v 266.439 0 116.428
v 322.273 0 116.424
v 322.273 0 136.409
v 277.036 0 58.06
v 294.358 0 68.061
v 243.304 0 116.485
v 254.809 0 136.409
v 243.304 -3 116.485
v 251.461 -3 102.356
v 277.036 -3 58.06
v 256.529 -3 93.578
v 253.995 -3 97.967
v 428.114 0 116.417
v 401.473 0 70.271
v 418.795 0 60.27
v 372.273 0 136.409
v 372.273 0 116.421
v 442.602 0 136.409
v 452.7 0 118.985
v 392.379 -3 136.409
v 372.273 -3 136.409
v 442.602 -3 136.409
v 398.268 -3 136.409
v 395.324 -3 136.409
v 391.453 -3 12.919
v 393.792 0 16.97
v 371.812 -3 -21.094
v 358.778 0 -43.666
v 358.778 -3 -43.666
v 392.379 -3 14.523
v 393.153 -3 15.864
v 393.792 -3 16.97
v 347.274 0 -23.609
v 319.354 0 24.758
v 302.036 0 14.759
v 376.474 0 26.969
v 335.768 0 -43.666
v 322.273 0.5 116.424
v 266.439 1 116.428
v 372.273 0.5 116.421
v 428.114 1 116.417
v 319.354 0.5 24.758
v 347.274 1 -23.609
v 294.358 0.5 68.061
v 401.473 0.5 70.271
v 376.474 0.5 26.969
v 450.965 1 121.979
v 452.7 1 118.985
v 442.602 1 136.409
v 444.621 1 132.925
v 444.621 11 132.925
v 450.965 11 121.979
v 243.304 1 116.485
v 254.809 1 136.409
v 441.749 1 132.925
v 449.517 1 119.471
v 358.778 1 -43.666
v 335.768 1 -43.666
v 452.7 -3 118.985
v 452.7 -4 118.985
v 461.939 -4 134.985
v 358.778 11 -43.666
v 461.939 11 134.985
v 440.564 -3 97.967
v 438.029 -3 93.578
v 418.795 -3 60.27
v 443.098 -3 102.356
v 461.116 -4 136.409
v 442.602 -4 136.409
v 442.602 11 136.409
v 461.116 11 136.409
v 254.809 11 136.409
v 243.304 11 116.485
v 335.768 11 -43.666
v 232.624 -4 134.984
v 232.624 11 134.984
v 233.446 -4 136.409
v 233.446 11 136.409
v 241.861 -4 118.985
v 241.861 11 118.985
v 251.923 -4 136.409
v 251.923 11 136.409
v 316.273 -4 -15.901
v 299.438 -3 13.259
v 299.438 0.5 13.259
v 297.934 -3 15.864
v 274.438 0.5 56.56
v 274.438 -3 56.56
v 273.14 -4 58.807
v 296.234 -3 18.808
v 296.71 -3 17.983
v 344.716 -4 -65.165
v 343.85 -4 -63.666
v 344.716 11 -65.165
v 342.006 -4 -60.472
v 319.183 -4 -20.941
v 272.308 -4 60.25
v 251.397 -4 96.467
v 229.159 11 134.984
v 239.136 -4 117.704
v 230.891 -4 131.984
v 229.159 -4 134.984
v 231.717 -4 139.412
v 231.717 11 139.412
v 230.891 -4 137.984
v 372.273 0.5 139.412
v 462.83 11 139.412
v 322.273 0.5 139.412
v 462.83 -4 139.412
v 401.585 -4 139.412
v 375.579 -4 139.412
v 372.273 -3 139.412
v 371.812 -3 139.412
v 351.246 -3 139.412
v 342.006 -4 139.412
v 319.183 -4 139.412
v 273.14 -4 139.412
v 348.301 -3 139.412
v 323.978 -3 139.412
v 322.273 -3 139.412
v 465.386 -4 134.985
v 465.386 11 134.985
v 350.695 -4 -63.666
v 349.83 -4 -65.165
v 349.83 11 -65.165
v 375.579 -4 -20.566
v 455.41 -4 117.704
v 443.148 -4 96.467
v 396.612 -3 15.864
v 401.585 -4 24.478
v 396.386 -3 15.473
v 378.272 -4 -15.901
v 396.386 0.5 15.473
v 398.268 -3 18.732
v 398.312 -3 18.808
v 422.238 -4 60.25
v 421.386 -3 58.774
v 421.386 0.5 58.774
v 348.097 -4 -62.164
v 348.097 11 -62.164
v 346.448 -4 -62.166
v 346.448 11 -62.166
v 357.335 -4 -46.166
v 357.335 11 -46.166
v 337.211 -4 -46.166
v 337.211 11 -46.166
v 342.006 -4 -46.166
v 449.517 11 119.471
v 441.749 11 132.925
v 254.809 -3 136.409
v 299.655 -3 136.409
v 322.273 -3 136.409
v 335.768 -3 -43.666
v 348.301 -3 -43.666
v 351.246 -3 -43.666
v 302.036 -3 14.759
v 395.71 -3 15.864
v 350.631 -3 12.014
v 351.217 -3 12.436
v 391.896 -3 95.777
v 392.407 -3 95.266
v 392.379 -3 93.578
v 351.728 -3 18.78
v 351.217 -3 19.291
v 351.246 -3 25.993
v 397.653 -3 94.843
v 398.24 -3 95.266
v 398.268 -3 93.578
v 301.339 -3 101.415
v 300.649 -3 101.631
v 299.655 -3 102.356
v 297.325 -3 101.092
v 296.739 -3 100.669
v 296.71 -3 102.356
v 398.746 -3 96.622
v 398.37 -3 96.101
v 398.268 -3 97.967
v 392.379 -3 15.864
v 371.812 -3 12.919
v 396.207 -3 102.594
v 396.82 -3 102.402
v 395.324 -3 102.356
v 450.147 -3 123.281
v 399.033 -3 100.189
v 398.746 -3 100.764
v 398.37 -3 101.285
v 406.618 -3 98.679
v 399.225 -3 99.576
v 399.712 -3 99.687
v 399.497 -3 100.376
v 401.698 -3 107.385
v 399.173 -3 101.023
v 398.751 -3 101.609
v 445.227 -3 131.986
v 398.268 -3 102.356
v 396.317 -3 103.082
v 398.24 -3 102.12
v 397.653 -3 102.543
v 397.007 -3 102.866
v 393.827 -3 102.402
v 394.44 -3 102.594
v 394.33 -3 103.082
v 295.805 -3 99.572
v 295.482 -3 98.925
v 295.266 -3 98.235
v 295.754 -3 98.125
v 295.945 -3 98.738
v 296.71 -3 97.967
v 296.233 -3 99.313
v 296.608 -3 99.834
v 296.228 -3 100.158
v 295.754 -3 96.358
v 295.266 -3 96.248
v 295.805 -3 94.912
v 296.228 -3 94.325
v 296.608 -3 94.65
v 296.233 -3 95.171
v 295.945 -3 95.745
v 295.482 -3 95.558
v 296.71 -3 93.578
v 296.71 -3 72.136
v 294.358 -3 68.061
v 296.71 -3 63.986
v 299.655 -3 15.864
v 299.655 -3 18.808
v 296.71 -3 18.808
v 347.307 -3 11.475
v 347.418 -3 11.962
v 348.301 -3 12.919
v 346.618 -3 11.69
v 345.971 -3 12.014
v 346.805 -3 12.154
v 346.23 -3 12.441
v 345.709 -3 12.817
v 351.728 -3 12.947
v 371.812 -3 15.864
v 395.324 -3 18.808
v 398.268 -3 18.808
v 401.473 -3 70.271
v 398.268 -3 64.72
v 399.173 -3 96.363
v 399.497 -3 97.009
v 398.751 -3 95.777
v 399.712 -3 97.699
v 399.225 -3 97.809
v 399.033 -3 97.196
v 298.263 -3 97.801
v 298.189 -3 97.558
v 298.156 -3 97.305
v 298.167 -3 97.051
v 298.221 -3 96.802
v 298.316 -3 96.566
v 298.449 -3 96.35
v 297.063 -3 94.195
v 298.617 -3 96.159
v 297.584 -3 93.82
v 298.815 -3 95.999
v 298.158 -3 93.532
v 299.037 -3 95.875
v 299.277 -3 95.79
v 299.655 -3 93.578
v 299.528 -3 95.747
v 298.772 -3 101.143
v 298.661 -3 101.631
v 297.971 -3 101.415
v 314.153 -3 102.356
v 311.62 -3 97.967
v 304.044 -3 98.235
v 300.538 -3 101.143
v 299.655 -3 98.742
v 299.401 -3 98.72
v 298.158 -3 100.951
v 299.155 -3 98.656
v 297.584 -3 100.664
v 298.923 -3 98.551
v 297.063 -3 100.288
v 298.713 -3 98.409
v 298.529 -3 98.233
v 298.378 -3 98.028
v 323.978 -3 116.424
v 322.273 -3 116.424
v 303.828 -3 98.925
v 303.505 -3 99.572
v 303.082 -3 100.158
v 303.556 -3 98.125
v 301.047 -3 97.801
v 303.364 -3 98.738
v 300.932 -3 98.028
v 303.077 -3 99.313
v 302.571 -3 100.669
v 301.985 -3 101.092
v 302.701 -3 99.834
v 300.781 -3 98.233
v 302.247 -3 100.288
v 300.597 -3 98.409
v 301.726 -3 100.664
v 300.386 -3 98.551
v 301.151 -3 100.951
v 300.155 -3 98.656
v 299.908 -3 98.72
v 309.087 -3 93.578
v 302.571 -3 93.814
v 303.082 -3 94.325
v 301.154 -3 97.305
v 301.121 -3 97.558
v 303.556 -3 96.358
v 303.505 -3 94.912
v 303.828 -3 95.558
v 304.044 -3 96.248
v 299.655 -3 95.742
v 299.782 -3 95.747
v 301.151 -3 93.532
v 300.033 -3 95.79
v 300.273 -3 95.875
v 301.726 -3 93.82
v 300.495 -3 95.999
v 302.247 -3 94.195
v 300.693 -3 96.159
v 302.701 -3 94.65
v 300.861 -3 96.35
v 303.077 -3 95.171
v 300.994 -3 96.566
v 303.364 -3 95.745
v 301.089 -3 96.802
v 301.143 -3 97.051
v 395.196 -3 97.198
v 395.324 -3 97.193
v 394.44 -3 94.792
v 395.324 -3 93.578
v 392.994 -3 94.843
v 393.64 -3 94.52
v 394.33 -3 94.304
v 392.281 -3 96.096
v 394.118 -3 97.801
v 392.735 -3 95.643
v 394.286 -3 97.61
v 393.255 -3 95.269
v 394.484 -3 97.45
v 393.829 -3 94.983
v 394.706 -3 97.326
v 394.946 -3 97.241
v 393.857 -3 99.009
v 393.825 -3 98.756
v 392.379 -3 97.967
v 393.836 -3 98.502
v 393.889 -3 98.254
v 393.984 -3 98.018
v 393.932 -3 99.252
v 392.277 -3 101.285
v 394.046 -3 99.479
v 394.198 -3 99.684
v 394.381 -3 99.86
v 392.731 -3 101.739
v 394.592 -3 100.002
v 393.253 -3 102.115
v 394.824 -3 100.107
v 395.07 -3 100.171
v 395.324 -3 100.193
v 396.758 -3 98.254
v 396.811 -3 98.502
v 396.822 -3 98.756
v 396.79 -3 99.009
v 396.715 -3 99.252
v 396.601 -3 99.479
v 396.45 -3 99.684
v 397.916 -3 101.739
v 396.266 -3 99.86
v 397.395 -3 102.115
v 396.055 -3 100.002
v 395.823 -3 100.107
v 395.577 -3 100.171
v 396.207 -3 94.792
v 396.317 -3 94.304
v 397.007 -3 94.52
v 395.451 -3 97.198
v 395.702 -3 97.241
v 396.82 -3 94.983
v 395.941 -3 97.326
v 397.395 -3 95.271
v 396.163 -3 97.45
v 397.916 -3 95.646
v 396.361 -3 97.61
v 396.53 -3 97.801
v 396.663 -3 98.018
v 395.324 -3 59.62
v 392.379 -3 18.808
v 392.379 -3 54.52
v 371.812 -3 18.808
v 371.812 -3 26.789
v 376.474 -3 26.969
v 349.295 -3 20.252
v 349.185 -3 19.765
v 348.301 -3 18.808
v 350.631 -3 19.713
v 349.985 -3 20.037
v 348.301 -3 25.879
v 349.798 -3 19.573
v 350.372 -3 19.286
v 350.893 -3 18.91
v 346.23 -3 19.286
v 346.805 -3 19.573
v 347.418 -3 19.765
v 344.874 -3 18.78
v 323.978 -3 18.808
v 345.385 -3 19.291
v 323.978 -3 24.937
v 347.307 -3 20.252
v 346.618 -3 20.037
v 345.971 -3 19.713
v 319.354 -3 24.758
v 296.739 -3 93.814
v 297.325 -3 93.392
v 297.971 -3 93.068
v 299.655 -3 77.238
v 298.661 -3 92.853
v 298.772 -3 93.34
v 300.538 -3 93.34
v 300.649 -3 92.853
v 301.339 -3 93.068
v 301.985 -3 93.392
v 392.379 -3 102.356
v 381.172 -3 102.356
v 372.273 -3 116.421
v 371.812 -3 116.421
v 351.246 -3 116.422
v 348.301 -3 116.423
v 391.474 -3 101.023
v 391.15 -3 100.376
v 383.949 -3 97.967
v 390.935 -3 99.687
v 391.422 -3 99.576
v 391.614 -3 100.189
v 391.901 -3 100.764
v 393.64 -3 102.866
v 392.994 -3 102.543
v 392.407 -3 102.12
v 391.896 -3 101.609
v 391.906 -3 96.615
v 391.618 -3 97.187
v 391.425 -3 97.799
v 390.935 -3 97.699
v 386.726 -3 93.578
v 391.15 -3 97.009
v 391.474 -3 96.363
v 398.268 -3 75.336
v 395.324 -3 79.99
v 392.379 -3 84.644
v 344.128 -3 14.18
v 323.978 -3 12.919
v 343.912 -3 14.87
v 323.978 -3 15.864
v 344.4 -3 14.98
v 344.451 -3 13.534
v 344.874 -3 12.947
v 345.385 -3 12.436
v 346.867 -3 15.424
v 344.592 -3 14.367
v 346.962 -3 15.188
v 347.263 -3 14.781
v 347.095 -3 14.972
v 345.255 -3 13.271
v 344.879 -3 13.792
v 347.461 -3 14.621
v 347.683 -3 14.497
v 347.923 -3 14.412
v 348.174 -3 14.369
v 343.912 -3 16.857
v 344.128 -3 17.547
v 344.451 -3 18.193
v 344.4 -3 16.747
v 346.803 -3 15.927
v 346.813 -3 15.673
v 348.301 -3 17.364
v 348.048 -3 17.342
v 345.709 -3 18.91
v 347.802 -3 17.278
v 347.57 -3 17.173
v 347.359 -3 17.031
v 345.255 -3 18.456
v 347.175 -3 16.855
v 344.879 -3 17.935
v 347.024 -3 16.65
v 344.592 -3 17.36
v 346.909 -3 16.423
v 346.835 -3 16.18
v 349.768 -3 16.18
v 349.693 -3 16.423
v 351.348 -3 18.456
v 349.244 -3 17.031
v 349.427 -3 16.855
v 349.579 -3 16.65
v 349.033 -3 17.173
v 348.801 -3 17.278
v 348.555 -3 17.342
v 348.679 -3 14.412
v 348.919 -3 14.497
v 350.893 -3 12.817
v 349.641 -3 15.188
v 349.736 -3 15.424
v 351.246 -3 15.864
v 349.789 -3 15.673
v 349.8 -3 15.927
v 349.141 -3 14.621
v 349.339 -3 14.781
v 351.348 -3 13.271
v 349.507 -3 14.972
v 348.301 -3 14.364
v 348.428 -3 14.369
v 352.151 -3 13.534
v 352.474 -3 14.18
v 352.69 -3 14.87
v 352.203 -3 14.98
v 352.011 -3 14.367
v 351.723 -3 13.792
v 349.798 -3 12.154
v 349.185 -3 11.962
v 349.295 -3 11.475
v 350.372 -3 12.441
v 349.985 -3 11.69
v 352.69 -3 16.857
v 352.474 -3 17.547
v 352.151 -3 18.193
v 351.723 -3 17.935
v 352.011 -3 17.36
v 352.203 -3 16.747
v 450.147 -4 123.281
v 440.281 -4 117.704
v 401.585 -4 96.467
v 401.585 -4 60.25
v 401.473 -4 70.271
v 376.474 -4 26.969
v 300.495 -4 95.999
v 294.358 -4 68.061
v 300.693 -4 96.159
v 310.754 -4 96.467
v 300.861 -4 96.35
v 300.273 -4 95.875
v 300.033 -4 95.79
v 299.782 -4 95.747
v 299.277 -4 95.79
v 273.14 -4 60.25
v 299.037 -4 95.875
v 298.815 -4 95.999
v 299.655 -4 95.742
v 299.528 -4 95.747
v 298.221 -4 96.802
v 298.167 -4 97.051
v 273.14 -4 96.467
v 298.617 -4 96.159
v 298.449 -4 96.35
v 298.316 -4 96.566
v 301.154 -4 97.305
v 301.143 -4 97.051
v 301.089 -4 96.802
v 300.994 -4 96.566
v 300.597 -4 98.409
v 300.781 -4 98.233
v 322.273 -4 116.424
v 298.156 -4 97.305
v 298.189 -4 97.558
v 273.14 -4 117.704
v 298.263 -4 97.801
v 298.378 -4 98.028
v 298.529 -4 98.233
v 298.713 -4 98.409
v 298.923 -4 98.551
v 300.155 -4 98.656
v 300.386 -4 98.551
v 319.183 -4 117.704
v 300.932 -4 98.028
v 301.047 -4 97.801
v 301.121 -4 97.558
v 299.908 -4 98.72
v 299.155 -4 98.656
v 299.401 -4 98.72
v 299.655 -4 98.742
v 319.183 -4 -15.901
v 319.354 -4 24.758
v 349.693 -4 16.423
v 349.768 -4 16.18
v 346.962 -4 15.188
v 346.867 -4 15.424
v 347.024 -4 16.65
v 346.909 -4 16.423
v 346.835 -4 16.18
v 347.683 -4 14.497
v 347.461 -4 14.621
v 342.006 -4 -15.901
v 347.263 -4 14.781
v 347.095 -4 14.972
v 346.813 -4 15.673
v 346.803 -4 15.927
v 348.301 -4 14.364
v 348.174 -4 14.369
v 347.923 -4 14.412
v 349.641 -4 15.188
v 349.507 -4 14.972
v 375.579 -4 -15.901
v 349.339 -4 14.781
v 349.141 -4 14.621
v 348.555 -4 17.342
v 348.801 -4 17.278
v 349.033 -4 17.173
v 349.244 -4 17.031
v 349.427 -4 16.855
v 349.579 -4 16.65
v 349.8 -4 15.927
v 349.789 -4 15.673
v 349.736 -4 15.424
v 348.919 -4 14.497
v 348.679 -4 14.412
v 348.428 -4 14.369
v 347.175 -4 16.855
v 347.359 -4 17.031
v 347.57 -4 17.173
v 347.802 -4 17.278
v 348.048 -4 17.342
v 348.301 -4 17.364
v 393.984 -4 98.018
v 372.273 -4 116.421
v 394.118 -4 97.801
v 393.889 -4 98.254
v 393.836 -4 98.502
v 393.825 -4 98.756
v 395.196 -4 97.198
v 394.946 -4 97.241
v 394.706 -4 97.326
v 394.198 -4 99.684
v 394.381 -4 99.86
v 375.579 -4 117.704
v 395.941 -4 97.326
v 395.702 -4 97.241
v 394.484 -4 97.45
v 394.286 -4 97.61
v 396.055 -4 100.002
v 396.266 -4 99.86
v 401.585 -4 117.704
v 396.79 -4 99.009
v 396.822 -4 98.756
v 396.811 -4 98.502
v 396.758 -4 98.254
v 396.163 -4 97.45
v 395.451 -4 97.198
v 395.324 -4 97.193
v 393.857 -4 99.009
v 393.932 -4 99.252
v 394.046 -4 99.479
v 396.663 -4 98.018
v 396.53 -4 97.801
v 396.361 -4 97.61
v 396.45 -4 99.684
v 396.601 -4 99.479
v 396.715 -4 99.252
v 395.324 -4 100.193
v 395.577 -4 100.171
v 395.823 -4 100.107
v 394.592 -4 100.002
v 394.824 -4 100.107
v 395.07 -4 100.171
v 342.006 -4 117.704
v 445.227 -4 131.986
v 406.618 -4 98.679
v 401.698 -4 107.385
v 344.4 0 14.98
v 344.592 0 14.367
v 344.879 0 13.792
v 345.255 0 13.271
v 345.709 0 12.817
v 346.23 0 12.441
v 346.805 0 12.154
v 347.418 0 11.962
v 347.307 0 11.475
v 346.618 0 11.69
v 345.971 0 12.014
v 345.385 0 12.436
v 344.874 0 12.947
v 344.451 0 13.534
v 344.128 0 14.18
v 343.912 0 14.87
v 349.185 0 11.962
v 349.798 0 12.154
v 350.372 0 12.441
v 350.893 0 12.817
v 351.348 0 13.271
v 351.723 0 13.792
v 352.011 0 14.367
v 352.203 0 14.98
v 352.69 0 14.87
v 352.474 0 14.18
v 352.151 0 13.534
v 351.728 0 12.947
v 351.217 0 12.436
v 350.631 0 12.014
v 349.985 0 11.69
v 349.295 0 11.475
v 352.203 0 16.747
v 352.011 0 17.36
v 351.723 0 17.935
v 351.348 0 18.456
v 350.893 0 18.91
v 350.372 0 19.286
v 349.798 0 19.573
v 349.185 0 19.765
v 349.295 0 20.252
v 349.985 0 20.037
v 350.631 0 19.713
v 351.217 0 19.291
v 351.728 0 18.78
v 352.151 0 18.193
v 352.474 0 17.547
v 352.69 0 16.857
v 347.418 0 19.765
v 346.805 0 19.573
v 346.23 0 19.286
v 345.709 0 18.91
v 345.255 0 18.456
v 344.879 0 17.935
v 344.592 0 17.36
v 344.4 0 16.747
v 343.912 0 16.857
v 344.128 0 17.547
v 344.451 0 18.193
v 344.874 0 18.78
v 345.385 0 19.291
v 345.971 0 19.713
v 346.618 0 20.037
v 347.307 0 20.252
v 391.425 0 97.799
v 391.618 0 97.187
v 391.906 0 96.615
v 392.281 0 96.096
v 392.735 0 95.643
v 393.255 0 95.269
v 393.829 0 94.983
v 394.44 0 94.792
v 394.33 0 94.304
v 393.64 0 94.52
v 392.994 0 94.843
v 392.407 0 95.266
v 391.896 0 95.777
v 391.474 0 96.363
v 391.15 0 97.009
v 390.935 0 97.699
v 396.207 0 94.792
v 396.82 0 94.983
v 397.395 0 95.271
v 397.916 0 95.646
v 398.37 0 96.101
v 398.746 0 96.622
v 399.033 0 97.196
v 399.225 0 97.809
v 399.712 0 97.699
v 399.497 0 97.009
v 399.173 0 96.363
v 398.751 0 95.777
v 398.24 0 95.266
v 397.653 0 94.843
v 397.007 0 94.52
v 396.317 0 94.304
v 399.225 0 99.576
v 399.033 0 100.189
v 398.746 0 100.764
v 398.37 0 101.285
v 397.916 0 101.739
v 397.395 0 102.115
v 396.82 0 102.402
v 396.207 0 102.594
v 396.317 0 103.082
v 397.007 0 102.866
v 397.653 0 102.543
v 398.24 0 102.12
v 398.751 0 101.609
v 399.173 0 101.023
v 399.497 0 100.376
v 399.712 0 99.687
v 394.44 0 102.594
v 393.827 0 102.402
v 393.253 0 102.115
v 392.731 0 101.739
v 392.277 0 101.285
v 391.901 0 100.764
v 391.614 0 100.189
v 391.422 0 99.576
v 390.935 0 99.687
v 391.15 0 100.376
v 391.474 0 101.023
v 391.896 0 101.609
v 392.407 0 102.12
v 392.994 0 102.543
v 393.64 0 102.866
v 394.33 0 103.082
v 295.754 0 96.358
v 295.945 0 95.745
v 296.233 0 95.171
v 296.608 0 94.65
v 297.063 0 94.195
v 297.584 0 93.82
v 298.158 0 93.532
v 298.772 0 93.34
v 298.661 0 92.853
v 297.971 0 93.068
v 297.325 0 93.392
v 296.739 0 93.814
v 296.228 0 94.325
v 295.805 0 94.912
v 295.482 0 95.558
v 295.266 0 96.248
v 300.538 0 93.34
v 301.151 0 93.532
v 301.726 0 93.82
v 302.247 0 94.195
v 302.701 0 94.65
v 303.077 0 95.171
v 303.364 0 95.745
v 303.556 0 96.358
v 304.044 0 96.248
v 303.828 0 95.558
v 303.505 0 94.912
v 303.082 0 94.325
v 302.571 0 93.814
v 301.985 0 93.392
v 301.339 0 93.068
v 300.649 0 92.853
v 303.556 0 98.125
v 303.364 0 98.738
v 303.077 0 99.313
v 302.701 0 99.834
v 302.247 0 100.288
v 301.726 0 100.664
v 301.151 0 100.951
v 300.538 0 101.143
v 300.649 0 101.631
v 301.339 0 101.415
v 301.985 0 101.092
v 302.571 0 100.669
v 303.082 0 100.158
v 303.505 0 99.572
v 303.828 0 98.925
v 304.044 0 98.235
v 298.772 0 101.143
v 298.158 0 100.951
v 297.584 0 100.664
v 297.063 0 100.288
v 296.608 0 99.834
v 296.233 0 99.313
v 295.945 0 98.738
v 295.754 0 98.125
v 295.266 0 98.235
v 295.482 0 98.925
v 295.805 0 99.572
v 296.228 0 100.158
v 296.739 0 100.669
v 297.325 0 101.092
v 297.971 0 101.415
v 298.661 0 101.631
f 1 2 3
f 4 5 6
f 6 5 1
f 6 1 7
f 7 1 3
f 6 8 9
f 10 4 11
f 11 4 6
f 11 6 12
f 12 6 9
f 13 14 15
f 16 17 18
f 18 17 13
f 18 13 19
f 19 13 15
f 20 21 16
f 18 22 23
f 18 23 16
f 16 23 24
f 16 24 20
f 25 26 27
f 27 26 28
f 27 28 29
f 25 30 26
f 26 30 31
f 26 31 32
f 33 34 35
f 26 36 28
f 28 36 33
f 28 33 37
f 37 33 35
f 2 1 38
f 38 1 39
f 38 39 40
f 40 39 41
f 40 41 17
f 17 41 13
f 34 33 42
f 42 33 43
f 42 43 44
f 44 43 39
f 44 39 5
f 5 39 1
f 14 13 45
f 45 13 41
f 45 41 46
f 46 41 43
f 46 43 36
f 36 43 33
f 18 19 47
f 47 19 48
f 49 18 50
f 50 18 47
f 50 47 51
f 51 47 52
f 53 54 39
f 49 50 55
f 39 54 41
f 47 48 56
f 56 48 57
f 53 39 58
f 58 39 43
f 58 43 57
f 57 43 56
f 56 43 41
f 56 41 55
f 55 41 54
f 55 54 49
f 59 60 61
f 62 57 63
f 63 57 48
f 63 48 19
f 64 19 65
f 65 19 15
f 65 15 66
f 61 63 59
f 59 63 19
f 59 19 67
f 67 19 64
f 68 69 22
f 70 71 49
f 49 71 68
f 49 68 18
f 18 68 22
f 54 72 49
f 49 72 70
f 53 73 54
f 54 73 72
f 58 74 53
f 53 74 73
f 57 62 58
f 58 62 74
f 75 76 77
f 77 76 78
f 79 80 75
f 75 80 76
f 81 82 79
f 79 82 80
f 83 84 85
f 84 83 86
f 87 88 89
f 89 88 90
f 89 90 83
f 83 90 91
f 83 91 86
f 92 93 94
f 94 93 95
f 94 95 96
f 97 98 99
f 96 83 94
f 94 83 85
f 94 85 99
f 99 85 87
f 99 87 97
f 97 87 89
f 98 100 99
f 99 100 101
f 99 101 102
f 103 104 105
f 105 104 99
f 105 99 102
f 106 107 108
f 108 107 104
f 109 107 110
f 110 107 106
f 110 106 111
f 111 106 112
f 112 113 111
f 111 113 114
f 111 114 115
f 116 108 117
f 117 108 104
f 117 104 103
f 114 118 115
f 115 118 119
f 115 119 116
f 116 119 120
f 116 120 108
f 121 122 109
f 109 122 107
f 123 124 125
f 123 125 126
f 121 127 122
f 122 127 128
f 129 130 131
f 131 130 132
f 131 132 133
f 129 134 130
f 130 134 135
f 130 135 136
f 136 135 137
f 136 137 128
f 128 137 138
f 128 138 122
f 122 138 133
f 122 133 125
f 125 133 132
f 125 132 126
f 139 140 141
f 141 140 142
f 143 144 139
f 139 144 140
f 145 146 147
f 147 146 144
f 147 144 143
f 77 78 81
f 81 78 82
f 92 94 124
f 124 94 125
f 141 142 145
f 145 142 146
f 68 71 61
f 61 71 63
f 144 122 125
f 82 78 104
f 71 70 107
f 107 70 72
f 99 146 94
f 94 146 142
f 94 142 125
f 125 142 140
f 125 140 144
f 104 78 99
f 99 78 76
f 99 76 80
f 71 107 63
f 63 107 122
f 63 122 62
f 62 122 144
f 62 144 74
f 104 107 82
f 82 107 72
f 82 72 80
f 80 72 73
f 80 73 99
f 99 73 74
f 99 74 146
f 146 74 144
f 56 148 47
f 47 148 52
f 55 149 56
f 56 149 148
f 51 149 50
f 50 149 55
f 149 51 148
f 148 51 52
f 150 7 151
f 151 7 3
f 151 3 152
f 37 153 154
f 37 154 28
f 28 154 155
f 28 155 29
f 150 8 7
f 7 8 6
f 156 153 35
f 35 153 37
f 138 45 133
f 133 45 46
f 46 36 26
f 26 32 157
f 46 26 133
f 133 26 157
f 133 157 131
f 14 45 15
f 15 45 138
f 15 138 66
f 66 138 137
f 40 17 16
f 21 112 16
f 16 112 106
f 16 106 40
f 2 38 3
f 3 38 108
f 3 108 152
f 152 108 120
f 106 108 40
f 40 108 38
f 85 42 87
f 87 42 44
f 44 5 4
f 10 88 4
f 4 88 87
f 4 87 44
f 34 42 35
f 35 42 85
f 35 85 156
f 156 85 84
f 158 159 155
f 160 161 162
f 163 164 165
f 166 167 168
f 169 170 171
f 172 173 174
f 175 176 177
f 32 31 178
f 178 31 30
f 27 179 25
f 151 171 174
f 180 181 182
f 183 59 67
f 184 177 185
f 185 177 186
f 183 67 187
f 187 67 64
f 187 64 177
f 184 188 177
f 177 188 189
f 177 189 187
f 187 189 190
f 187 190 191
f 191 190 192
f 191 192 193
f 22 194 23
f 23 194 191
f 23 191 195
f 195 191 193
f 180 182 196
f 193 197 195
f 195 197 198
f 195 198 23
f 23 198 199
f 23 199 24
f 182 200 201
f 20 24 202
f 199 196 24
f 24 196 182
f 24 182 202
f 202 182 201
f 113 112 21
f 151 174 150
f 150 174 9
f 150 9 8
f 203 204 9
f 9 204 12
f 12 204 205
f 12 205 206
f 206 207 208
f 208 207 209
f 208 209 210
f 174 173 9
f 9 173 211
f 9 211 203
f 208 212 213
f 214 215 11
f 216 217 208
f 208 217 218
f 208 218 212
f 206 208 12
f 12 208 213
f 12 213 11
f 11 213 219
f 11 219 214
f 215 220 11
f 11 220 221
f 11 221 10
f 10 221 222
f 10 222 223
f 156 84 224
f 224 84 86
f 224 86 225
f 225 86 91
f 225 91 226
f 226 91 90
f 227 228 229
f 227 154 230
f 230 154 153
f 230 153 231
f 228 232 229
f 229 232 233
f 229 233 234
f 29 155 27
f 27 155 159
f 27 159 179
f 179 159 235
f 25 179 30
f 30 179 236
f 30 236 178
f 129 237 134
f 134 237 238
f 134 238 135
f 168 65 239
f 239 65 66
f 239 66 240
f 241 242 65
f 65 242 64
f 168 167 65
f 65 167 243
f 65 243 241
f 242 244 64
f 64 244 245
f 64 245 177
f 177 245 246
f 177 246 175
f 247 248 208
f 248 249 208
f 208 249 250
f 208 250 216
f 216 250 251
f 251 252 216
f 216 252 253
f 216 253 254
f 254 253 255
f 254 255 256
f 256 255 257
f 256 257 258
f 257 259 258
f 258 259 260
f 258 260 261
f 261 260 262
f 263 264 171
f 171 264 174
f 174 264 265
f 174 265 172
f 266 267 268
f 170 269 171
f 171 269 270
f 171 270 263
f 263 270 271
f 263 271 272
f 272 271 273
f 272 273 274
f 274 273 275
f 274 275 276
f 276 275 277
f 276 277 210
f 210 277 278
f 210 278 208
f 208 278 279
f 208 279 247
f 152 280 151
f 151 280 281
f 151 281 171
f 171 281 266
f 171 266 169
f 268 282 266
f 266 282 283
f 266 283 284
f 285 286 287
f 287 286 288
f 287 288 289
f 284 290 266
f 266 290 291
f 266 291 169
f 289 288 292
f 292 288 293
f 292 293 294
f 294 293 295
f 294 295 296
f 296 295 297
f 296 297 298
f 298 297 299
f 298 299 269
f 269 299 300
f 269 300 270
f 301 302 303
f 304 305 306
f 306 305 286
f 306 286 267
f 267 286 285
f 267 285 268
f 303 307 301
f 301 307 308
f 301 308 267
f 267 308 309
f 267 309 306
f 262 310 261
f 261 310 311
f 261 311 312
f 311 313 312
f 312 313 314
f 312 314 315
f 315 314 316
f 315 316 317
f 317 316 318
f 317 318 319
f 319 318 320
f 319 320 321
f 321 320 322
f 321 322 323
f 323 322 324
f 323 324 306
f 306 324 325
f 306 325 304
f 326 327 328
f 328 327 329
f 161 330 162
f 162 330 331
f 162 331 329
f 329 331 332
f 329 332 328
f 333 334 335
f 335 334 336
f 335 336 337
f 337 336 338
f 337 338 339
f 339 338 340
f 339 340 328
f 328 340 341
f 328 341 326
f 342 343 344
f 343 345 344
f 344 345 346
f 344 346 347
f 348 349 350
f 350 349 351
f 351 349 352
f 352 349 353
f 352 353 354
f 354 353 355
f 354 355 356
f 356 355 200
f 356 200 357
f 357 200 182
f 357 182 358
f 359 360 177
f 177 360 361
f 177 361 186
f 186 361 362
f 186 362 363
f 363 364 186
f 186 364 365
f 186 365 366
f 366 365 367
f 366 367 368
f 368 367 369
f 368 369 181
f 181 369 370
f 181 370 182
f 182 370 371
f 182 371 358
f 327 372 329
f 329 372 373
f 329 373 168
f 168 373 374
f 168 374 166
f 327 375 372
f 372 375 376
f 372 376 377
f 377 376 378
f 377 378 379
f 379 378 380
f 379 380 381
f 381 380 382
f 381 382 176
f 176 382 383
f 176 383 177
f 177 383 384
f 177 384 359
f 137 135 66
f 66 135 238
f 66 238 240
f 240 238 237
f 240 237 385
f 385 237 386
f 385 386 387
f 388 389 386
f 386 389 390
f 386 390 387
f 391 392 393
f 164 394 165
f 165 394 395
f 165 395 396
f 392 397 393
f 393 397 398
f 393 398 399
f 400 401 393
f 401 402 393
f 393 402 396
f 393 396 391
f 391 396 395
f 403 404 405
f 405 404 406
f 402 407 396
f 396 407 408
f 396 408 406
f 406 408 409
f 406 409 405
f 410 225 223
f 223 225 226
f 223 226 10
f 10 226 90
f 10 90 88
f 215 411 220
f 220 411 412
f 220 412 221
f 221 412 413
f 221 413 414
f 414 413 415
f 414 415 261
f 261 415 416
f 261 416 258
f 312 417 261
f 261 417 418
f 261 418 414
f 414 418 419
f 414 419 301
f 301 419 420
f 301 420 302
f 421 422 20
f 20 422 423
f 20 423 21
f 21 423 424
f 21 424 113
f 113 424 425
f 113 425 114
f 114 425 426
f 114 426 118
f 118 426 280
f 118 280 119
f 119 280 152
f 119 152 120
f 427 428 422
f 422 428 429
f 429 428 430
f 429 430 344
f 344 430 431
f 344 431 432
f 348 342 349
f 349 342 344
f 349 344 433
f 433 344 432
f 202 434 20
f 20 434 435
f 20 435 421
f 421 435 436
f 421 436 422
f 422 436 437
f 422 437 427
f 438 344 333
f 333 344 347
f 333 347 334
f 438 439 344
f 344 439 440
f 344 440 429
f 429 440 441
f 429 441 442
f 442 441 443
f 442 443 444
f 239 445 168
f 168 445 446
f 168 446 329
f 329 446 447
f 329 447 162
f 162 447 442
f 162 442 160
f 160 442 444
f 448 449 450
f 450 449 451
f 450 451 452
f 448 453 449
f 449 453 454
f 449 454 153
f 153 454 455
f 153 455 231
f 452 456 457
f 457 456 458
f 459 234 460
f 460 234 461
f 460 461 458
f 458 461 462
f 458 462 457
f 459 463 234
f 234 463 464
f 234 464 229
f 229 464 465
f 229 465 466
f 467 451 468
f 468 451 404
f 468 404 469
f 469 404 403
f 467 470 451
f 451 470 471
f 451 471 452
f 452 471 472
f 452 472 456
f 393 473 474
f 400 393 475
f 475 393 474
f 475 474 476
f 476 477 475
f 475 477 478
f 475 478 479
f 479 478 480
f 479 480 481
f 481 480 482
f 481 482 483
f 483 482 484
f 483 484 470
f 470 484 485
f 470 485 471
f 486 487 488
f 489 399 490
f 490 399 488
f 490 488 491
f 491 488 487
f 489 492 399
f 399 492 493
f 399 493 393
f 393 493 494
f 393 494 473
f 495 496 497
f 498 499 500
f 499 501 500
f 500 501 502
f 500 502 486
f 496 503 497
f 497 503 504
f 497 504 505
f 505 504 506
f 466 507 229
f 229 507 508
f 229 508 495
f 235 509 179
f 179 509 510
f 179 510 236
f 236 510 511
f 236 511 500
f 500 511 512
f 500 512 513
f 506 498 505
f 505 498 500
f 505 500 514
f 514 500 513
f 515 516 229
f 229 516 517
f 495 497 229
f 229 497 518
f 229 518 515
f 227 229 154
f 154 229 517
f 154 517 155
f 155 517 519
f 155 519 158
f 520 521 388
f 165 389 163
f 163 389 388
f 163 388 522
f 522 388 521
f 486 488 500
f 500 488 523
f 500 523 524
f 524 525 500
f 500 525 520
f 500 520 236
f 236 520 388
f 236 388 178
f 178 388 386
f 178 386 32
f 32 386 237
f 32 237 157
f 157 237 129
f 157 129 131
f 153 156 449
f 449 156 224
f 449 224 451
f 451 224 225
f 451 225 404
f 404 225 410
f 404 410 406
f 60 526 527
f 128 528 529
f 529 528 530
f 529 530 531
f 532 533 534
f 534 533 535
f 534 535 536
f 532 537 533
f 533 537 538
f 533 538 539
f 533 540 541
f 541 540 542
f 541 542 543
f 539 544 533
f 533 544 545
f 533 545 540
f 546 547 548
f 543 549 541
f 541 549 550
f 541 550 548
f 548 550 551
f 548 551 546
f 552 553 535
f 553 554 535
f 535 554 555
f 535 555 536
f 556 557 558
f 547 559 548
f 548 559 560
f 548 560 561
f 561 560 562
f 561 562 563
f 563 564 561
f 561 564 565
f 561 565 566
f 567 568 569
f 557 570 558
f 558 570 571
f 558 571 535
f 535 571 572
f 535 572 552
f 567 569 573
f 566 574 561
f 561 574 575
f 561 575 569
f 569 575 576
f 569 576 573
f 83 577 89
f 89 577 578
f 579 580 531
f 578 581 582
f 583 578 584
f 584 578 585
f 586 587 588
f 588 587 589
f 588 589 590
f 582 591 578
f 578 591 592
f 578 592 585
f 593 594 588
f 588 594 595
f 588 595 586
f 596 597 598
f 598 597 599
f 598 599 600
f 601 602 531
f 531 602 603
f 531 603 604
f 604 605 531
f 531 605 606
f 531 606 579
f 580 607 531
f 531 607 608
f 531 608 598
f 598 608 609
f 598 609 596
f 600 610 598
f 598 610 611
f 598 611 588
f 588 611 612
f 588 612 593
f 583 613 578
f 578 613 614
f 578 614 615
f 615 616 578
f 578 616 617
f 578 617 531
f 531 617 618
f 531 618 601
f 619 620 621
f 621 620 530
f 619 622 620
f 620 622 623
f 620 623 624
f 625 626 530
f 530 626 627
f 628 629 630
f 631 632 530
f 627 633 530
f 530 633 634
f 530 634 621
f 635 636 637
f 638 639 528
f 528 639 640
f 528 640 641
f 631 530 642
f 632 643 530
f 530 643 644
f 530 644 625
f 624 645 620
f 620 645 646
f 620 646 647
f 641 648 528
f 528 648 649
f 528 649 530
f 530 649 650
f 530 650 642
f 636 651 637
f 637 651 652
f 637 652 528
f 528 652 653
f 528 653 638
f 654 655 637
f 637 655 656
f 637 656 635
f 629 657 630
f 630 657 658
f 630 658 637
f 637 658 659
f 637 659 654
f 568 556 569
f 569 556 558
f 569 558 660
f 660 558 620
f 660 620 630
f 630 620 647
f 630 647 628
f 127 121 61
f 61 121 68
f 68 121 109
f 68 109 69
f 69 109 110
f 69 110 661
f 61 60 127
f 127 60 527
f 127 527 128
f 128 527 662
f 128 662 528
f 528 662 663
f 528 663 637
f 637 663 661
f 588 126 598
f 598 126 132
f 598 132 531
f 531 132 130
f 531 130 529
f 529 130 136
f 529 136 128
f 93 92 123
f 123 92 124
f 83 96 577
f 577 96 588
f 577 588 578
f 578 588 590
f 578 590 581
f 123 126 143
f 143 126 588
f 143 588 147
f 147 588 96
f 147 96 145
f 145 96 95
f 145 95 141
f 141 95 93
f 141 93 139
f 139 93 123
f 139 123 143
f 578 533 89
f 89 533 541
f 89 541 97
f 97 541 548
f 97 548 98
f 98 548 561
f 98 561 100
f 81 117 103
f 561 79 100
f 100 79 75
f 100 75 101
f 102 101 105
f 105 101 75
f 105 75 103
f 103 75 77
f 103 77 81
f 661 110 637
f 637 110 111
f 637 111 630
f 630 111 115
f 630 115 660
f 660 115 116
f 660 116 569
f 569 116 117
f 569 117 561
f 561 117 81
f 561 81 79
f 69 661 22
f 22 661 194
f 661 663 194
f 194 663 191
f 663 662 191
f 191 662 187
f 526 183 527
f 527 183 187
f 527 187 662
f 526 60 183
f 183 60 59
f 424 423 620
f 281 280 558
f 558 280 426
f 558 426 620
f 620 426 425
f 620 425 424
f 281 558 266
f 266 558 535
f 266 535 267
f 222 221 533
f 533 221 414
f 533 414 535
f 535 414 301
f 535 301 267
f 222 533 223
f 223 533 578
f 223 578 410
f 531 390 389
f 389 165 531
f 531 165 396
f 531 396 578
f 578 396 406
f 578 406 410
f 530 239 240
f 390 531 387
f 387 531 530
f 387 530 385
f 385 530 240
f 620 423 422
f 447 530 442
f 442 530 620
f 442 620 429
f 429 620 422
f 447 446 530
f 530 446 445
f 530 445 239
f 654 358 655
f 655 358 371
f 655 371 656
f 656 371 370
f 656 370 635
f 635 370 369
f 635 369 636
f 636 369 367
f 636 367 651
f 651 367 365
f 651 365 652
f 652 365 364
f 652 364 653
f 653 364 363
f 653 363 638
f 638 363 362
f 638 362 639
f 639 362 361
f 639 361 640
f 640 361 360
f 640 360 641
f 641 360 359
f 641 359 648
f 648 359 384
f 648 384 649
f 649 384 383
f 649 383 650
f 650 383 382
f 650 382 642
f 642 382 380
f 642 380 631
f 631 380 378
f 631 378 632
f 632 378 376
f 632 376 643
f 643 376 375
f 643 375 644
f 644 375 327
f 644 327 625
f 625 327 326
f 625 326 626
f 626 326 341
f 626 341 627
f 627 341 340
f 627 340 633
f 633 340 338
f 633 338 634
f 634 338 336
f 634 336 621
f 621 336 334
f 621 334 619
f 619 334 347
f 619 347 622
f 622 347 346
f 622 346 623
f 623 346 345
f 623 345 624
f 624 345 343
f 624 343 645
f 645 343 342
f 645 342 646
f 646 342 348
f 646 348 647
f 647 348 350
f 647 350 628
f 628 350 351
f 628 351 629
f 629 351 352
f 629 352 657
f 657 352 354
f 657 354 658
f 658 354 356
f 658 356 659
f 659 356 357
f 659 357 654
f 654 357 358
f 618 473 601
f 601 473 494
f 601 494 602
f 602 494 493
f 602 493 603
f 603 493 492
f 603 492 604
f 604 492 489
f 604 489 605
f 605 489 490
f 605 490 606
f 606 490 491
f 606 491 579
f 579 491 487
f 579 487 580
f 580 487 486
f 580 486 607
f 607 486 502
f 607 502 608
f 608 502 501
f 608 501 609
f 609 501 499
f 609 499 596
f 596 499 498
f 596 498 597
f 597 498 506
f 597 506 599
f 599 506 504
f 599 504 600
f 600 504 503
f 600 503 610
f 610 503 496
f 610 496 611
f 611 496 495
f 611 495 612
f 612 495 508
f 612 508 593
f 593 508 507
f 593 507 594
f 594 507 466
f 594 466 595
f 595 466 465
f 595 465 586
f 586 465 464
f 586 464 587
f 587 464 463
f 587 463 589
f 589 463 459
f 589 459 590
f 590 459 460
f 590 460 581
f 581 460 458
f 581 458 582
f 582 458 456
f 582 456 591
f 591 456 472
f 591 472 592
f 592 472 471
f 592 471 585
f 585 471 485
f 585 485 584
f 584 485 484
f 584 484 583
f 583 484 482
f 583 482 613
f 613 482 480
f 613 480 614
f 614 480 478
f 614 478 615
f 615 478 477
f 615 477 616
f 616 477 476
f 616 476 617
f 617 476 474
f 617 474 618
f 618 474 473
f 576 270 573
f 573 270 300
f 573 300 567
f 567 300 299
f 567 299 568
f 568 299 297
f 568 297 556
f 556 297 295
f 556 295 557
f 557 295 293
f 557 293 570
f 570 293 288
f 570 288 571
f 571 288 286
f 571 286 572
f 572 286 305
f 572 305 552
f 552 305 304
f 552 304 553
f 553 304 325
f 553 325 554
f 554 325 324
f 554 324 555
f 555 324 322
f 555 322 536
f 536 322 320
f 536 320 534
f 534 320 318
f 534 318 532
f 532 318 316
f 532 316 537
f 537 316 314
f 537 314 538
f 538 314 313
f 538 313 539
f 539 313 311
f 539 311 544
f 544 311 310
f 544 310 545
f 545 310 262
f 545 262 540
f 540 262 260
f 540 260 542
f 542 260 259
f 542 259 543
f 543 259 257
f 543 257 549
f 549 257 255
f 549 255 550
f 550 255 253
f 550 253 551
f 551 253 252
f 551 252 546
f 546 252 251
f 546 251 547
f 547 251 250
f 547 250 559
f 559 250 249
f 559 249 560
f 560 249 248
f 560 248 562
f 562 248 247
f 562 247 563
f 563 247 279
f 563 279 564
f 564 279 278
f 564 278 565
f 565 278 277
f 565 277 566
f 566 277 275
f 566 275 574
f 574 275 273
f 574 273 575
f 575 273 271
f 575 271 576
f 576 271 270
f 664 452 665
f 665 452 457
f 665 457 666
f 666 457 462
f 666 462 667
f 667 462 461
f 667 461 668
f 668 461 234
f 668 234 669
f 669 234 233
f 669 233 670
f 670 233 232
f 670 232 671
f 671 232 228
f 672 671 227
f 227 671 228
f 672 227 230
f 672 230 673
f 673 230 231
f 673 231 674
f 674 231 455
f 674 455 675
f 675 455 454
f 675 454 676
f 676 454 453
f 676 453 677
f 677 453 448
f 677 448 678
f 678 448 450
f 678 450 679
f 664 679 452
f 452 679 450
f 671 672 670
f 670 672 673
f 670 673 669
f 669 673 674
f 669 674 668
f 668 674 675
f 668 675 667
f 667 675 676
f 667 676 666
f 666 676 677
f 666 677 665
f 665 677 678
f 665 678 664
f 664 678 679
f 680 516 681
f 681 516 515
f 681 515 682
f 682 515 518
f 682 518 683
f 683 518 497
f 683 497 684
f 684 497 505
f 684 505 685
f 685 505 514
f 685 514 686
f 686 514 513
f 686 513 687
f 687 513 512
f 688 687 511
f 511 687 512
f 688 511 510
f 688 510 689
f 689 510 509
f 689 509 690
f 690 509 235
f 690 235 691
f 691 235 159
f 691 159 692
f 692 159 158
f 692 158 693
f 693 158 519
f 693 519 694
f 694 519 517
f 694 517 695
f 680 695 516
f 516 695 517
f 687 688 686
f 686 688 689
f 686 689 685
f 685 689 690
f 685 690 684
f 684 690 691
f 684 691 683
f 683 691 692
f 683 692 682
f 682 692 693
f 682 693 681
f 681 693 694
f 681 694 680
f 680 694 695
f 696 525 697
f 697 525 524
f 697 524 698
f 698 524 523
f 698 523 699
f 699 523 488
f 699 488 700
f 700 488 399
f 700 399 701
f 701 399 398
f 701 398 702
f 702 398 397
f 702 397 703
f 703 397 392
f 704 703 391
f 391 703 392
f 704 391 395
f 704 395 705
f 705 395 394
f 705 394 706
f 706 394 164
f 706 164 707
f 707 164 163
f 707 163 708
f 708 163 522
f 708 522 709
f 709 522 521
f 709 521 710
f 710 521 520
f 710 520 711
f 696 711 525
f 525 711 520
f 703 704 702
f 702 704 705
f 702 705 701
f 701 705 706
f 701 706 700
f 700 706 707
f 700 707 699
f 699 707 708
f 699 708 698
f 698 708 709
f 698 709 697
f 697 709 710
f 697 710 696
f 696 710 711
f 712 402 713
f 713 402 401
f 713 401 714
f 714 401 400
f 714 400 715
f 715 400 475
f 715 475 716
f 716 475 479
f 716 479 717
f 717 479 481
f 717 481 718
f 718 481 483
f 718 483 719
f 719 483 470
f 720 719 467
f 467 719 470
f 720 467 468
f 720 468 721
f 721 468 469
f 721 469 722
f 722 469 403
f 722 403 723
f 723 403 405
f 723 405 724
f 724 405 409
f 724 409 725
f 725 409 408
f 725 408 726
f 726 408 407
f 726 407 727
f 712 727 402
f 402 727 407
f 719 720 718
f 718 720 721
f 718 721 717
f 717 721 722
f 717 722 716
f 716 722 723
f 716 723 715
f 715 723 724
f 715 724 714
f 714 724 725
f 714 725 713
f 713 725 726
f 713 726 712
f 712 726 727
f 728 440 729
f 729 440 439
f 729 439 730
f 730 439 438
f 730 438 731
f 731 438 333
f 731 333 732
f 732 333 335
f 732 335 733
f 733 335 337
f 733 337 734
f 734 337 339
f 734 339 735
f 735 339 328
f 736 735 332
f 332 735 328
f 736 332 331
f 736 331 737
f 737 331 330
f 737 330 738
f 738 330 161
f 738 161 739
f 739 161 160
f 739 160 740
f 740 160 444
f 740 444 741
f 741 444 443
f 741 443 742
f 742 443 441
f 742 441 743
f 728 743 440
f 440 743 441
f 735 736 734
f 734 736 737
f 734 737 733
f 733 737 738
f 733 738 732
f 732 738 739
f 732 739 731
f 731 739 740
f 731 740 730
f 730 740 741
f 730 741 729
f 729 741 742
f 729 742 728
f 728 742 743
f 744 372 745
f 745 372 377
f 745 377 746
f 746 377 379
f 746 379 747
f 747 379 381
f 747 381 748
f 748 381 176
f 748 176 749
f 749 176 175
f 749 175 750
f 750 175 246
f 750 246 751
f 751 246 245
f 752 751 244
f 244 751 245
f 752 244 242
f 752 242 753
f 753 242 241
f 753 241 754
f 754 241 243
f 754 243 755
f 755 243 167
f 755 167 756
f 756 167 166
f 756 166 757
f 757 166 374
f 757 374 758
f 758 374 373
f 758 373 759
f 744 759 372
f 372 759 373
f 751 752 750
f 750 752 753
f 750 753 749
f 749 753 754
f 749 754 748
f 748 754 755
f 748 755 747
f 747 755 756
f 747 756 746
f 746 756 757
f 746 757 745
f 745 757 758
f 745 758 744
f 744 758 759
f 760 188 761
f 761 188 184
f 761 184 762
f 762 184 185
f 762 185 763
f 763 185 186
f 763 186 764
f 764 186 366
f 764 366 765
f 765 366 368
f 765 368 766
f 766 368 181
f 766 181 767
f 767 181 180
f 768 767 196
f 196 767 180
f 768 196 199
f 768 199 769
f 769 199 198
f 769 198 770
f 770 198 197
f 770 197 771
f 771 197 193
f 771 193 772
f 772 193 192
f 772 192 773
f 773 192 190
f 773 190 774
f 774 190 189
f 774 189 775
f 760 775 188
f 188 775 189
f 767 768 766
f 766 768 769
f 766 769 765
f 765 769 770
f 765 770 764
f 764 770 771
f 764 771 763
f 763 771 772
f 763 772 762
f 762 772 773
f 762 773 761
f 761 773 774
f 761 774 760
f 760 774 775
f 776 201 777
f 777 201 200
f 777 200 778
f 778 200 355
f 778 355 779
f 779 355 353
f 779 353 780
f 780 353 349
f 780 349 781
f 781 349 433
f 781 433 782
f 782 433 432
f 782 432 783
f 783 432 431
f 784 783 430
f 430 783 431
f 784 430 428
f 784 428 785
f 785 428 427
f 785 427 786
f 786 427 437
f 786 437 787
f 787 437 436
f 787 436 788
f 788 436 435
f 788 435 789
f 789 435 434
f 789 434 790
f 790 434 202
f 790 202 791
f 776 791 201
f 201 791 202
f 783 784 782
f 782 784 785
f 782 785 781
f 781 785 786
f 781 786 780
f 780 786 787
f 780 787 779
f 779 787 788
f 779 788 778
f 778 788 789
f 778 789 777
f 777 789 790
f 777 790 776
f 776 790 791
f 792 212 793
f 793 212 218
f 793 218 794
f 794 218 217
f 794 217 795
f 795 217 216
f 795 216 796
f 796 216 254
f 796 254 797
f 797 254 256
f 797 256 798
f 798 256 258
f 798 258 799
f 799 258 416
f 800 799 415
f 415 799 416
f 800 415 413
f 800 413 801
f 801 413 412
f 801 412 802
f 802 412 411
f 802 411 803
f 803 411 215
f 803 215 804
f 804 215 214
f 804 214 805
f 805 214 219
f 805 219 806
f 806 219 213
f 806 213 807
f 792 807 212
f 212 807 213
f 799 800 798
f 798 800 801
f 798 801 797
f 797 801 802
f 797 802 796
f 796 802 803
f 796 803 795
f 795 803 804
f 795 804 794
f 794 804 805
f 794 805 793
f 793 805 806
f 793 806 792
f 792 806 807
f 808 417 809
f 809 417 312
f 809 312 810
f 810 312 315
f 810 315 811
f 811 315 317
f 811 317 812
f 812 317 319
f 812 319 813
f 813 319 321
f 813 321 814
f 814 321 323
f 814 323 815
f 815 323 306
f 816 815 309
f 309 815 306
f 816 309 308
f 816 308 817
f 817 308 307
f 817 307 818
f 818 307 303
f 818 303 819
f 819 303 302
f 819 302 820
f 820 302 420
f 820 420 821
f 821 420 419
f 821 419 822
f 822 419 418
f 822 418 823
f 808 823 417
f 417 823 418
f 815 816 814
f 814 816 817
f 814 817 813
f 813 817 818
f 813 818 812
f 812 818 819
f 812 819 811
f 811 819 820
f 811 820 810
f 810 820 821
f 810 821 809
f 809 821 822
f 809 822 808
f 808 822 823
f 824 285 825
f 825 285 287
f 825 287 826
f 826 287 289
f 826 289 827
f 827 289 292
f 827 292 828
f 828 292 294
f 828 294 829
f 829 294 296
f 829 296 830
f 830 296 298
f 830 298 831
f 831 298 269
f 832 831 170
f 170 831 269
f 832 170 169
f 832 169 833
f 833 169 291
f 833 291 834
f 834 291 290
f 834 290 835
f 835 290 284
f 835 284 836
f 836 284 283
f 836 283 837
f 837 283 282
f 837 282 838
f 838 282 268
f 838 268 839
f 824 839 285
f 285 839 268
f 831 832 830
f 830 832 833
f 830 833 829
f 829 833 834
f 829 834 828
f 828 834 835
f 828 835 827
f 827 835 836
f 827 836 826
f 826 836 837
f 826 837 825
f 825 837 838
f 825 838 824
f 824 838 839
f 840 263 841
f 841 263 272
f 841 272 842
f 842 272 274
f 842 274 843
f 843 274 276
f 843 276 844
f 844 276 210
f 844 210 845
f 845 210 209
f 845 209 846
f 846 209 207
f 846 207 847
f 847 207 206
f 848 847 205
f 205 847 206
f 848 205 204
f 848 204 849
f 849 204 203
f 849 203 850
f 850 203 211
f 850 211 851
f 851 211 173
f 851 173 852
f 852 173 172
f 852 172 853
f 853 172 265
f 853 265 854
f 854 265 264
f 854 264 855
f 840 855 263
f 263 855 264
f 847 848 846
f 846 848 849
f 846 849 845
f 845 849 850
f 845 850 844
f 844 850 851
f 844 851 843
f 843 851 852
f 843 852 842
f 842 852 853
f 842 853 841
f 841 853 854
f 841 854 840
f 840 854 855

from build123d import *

# Parameters (mm, degrees)
BOSS_EXTRUDE1_DEPTH      = 1
BOSS_EXTRUDE2_DEPTH      = 11
BOSS_EXTRUDE3_DEPTH      = 5
BOSS_EXTRUDE3_DEPTH_BACK = 3
SKETCH3_W                = 50
SKETCH3_H                = 7
CUT_EXTRUDE3_DEPTH       = 25
SKETCH5_W                = 50
SKETCH5_H                = 7
CUT_EXTRUDE4_DEPTH       = 25
SKETCH6_W                = 50
SKETCH6_H                = 7
CUT_EXTRUDE5_DEPTH       = 25
SKETCH8_R                = 1.5
BOSS_EXTRUDE5_DEPTH      = 1
BOSS_EXTRUDE10_DEPTH     = 3


with BuildPart() as part:
    # Sketch1 → Boss-Extrude1 (new body)
    with BuildSketch(Plane(origin=(0, 0, 0), x_dir=(1, 0, 0), z_dir=(0, 1, 0))):
        Polygon((243.304219773, -116.484791866), (254.809280576, -136.408896139), (442.602090749, -136.409305398), (444.621046679, -132.925433223), (441.749040748, -132.925433223), (449.516726723, -119.471406457), (450.964695297, -121.978953122), (452.699916621, -118.984688017), (358.778179035, 43.666038066), (335.767496284, 43.666038066), align=None)
        Polygon((428.113670919, -116.417164681), (266.439108268, -116.428009241), (347.273609729, 23.609230825), align=None, mode=Mode.SUBTRACT)
    extrude(amount=BOSS_EXTRUDE1_DEPTH)

    # Sketch1<9> → Boss-Extrude2 (add)
    # profile 1 of 2: a face of its own
    with BuildSketch(Plane(origin=(0, 0, 0), x_dir=(1, 0, 0), z_dir=(0, 1, 0))):
        Polygon((229.159432547, -134.984249184), (231.716666588, -139.412373829), (462.829865412, -139.412373829), (465.38624875, -134.984588004), (349.829542096, 65.165499075), (344.716133219, 65.165499075), align=None)
        Polygon((251.922647988, -136.4093054), (233.446303399, -136.408896139), (232.623553959, -134.984217358), (241.860901688, -118.984688019), align=None, mode=Mode.SUBTRACT)
        Polygon((442.602090749, -136.409305398), (254.809280576, -136.408896139), (243.304219773, -116.484791866), (335.767496284, 43.666038066), (358.778179035, 43.666038066), (461.938967957, -134.984588004), (461.116393748, -136.409305398), align=None, mode=Mode.SUBTRACT)
        Polygon((348.096628302, 62.164013367), (357.334800991, 46.166038067), (337.210874326, 46.166038067), (346.44844193, 62.165948237), align=None, mode=Mode.SUBTRACT)
    # profile 2 of 2: a face of its own
    with BuildSketch(Plane(origin=(0, 0, 0), x_dir=(1, 0, 0), z_dir=(0, 1, 0))):
        Polygon((441.749040748, -132.925433223), (444.621046679, -132.925433223), (450.964695297, -121.978953122), (449.516726723, -119.471406457), align=None)
    extrude(amount=BOSS_EXTRUDE2_DEPTH)

    # Sketch1<10> → Boss-Extrude3 (add, two sides: drawn at the far end of the back side and taken through both)
    with BuildSketch(Plane(origin=(0, 0, 0), x_dir=(1, 0, 0), z_dir=(0, 1, 0)).offset(-BOSS_EXTRUDE3_DEPTH_BACK)):
        Polygon((229.159432547, -134.984249184), (231.716666588, -139.412373829), (462.829865412, -139.412373829), (465.38624875, -134.984588004), (349.829542096, 65.165499075), (344.716133219, 65.165499075), align=None)
        Polygon((251.922647988, -136.4093054), (233.446303399, -136.408896139), (232.623553959, -134.984217358), (241.860901688, -118.984688019), align=None, mode=Mode.SUBTRACT)
        Polygon((442.602090749, -136.409305398), (254.809280576, -136.408896139), (243.304219773, -116.484791866), (335.767496284, 43.666038066), (358.778179035, 43.666038066), (452.699916621, -118.984688017), (461.938967957, -134.984588004), (461.116393748, -136.409305398), align=None, mode=Mode.SUBTRACT)
        Polygon((348.096628302, 62.164013367), (357.334800991, 46.166038067), (337.210874326, 46.166038067), (346.44844193, 62.165948237), align=None, mode=Mode.SUBTRACT)
    extrude(amount=BOSS_EXTRUDE3_DEPTH + BOSS_EXTRUDE3_DEPTH_BACK)

    # Sketch3 → Cut-Extrude3 (cut)
    with BuildSketch(Plane(origin=(290.589645397, 0, -167.772009994), x_dir=(-0.49999999999998745, 0, -0.8660254037844459), z_dir=(0.8660254037844459, 0, -0.49999999999998745))):
        with Locations((-236.592990632, -3)):
            Rectangle(SKETCH3_W, SKETCH3_H)
    extrude(amount=-CUT_EXTRUDE3_DEPTH, mode=Mode.SUBTRACT)

    # Sketch5 → Cut-Extrude4 (cut)
    with BuildSketch(Plane.XY.offset(139.412373829)):
        with Locations((347.273266, -3)):
            Rectangle(SKETCH5_W, SKETCH5_H)
    extrude(amount=-CUT_EXTRUDE4_DEPTH, mode=Mode.SUBTRACT)

    # Sketch6 → Cut-Extrude5 (cut)
    with BuildSketch(Plane(origin=(230.319375797, 0, 132.975171838), x_dir=(-0.5000006154012504, 0, 0.8660250484820695), z_dir=(-0.8660250484820695, 0, -0.5000006154012504))):
        with Locations((-113.2366748, -3)):
            Rectangle(SKETCH6_W, SKETCH6_H)
    extrude(amount=-CUT_EXTRUDE5_DEPTH, mode=Mode.SUBTRACT)

    # Sketch8 → Boss-Extrude5 (add)
    with BuildSketch(Plane.XZ.offset(3)):
        Polygon((349.829542096, -65.165499075), (465.38624875, 134.984588004), (462.829865412, 139.412373829), (231.716666588, 139.412373829), (229.159432547, 134.984249184), (344.716133219, -65.165499075), align=None)
        with Locations((395.323540807, 98.692824234)):
            Circle(SKETCH8_R, mode=Mode.SUBTRACT)
        with Locations((348.301285092, 15.863526629)):
            Circle(SKETCH8_R, mode=Mode.SUBTRACT)
        with Locations((299.654911442, 97.241681781)):
            Circle(SKETCH8_R, mode=Mode.SUBTRACT)
        Polygon((450.14703547, 123.280701064), (452.699916621, 118.984688017), (461.938967957, 134.984588004), (461.116393748, 136.409305398), (442.602090749, 136.409305398), (445.226665069, 131.986443715), (401.697951811, 107.384591709), (406.618322212, 98.678849058), align=None, mode=Mode.SUBTRACT)
        Polygon((322.273266, 116.424264082), (294.358218631, 68.061097964), (319.354499366, 24.757680453), (376.473657317, 26.969372805), (401.47267951, 70.271207531), (372.273266, 116.420910258), align=None, mode=Mode.SUBTRACT)
        Polygon((233.446303399, 136.408896139), (251.922647988, 136.4093054), (241.860901688, 118.984688019), (232.623553959, 134.984217358), align=None, mode=Mode.SUBTRACT)
        Polygon((337.210874326, -46.166038067), (357.334800991, -46.166038067), (348.096628302, -62.164013367), (346.44844193, -62.165948237), align=None, mode=Mode.SUBTRACT)
    extrude(amount=BOSS_EXTRUDE5_DEPTH)

    # Sketch12 → Boss-Extrude10 (add)
    with BuildSketch(Plane(origin=(0, -3, 0), x_dir=(1, 0, 0), z_dir=(0, 1, 0))):
        with BuildLine():
            ThreePointArc((352.69017398, -14.869718639), (351.483265607, -12.681546113), (349.295093082, -11.47463774))
            Line((349.295093082, -11.47463774), (349.184669972, -11.962292061))
            ThreePointArc((349.184669972, -11.962292061), (351.129712216, -13.035099504), (352.202519659, -14.980141749))
            Line((352.202519659, -14.980141749), (352.69017398, -14.869718639))
        make_face()
        with BuildLine():
            Line((347.417900212, -11.962292061), (347.307477102, -11.47463774))
            ThreePointArc((347.307477102, -11.47463774), (345.119304576, -12.681546113), (343.912396203, -14.869718639))
            Line((343.912396203, -14.869718639), (344.400050524, -14.980141749))
            ThreePointArc((344.400050524, -14.980141749), (345.472857967, -13.035099504), (347.417900212, -11.962292061))
        make_face()
        with BuildLine():
            ThreePointArc((349.295093082, -20.252415518), (351.483265607, -19.045507144), (352.69017398, -16.857334619))
            Line((352.69017398, -16.857334619), (352.202519659, -16.746911509))
            ThreePointArc((352.202519659, -16.746911509), (351.129712216, -18.691953754), (349.184669972, -19.764761197))
            Line((349.184669972, -19.764761197), (349.295093082, -20.252415518))
        make_face()
        with BuildLine():
            Line((344.400050524, -16.746911509), (343.912396203, -16.857334619))
            ThreePointArc((343.912396203, -16.857334619), (345.119304576, -19.045507144), (347.307477102, -20.252415518))
            Line((347.307477102, -20.252415518), (347.417900212, -19.764761197))
            ThreePointArc((347.417900212, -19.764761197), (345.472857967, -18.691953754), (344.400050524, -16.746911509))
        make_face()
        with BuildLine():
            Line((394.440155927, -94.791589666), (394.329732817, -94.303935345))
            ThreePointArc((394.329732817, -94.303935345), (392.141560292, -95.510843719), (390.934651919, -97.699016244))
            Line((390.934651919, -97.699016244), (391.4247896, -97.798542945))
            ThreePointArc((391.4247896, -97.798542945), (392.499067689, -95.860448622), (394.440155927, -94.791589666))
        make_face()
        with BuildLine():
            ThreePointArc((399.712429696, -97.699016244), (398.505521323, -95.510843719), (396.317348797, -94.303935345))
            Line((396.317348797, -94.303935345), (396.206925687, -94.791589666))
            ThreePointArc((396.206925687, -94.791589666), (398.151967932, -95.864397109), (399.224775375, -97.809439354))
            Line((399.224775375, -97.809439354), (399.712429696, -97.699016244))
        make_face()
        with BuildLine():
            Line((391.422306239, -99.576209114), (390.934651919, -99.686632224))
            ThreePointArc((390.934651919, -99.686632224), (392.141560292, -101.874804749), (394.329732817, -103.081713123))
            Line((394.329732817, -103.081713123), (394.440155927, -102.594058802))
            ThreePointArc((394.440155927, -102.594058802), (392.495113683, -101.521251359), (391.422306239, -99.576209114))
        make_face()
        with BuildLine():
            ThreePointArc((396.317348797, -103.081713123), (398.505521323, -101.874804749), (399.712429696, -99.686632224))
            Line((399.712429696, -99.686632224), (399.224775375, -99.576209114))
            ThreePointArc((399.224775375, -99.576209114), (398.151967932, -101.521251359), (396.206925687, -102.594058802))
            Line((396.206925687, -102.594058802), (396.317348797, -103.081713123))
        make_face()
        with BuildLine():
            ThreePointArc((298.661103452, -92.852792892), (296.472930927, -94.059701266), (295.266022553, -96.247873791))
            Line((295.266022553, -96.247873791), (295.753676874, -96.358296901))
            ThreePointArc((295.753676874, -96.358296901), (296.826484317, -94.413254657), (298.771526562, -93.340447213))
            Line((298.771526562, -93.340447213), (298.661103452, -92.852792892))
        make_face()
        with BuildLine():
            Line((295.753676874, -98.125066661), (295.266022553, -98.235489771))
            ThreePointArc((295.266022553, -98.235489771), (296.472930927, -100.423662297), (298.661103452, -101.63057067))
            Line((298.661103452, -101.63057067), (298.771526562, -101.142916349))
            ThreePointArc((298.771526562, -101.142916349), (296.826484317, -100.070108906), (295.753676874, -98.125066661))
        make_face()
        with BuildLine():
            ThreePointArc((304.043800331, -96.247873791), (302.836891957, -94.059701266), (300.648719432, -92.852792892))
            Line((300.648719432, -92.852792892), (300.538296322, -93.340447213))
            ThreePointArc((300.538296322, -93.340447213), (302.483338567, -94.413254657), (303.55614601, -96.358296901))
            Line((303.55614601, -96.358296901), (304.043800331, -96.247873791))
        make_face()
        with BuildLine():
            Line((300.538296322, -101.142916349), (300.648719432, -101.63057067))
            ThreePointArc((300.648719432, -101.63057067), (302.836891957, -100.423662297), (304.043800331, -98.235489771))
            Line((304.043800331, -98.235489771), (303.55614601, -98.125066661))
            ThreePointArc((303.55614601, -98.125066661), (302.483338567, -100.070108906), (300.538296322, -101.142916349))
        make_face()
    extrude(amount=BOSS_EXTRUDE10_DEPTH)


solid = part.part
